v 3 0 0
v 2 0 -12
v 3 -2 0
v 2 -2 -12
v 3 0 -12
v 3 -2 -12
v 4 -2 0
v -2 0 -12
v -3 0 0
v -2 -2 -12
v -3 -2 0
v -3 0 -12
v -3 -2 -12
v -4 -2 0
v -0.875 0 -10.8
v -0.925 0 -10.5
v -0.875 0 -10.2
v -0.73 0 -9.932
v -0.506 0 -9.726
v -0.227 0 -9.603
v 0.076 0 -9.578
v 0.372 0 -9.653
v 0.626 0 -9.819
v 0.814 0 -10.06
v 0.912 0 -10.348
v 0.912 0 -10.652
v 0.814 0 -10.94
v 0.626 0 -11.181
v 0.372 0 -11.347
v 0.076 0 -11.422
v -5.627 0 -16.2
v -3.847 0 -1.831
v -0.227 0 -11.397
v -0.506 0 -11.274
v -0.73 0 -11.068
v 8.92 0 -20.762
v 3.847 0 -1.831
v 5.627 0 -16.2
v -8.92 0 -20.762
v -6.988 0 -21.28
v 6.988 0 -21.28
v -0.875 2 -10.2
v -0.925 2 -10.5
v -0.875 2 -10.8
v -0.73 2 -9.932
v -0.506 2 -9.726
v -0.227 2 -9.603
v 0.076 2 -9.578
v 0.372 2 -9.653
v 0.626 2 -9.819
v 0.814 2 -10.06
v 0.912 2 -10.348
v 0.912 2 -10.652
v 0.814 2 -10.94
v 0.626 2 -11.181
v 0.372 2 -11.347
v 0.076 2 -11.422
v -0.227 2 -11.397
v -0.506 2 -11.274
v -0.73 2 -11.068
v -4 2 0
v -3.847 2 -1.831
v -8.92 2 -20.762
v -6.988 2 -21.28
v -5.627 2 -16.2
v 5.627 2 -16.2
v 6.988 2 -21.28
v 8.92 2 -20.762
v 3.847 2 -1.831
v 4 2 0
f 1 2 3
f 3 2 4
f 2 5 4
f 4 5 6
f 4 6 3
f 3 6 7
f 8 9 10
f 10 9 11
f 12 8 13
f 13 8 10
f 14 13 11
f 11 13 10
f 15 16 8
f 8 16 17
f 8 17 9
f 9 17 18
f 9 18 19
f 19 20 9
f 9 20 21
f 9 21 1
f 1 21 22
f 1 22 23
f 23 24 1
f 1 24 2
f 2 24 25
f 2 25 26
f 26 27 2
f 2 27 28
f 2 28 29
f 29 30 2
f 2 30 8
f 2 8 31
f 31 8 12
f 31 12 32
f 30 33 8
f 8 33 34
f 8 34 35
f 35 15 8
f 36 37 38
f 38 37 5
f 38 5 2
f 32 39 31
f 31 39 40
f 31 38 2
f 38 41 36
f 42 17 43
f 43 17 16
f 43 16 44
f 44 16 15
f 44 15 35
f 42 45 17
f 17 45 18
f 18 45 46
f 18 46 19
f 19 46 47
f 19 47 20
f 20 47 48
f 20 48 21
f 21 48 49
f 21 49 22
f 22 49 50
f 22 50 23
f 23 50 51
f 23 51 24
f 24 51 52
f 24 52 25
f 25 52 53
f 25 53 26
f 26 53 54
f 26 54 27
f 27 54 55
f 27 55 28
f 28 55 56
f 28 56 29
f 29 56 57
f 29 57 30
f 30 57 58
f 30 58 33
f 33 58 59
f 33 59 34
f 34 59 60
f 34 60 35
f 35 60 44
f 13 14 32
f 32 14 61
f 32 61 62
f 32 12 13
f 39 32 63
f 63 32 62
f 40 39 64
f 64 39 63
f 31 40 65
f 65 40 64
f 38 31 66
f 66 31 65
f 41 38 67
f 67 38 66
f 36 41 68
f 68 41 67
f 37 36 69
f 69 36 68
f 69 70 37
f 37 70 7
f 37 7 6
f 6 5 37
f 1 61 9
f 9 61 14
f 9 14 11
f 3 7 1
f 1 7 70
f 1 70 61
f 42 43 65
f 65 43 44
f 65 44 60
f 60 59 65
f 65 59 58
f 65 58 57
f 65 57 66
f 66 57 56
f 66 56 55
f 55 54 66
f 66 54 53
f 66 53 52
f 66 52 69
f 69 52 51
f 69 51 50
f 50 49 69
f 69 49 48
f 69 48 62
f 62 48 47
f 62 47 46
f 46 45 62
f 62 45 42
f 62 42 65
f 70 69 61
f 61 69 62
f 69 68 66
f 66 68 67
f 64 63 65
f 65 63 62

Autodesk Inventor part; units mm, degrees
ref_plane "YZ Plane" through (0, 0, 0) normal (1, 0, 0) x (0, 1, 0)
ref_plane "XZ Plane" through (0, 0, 0) normal (0, 1, 0) x (-1, 0, 0)
ref_plane "XY Plane" through (0, 0, 0) normal (0, 0, 1) x (1, 0, 0)
sketch "Sketch1" plane through (0, 0, 0) normal (0, 1, 0) x (-1, 0, 0)
  circle A0 centre (0, 0) radius 0.5
  line L0 (0, 0) -> (0, -2)
  circle A1 centre (0, -2) radius 0.75
  line L1 (0, -2) -> (0, -4)
  line L2 (0, -4) -> (0, -6)
  circle A2 centre (0, -4) radius 0.5
  circle A3 centre (0, -6) radius 0.5
  line L3 (0, 1.25) -> (0, 0)
  line L4 (0, 0.5) -> (0, 4.8)
  line L5 (0, 4.8) -> (0, -22.2)
  line L6 (0, -6.5) -> (0, -8)
  line L7 (0, -6) -> (0, -8)
  circle A4 centre (0, -8) radius 0.5
  line L8 (0, -8.5) -> (0, -12.5)
  line L9 (0, -12.5) -> (0, -12)
  circle A5 centre (0, -10.5) radius 0.925
  circle A6 centre (0, -12) radius 0.5
  line L10 (0, 1.25) -> (3, 1.25)
  line L11 (3, 1.25) -> (-3, 1.25)
  line L12 (-3, 1.25) -> (-3, -13.75)
  line L13 (-3, -13.75) -> (3, -13.75)
  line L14 (3, -13.75) -> (3, 1.25)
  line L15 (3, 0) -> (-3, 0)
  line L16 (0, -12) -> (2, -12)
  line L17 (2, -12) -> (-2, -12)
  line L18 (-2, -12) -> (-3, 0)
  line L19 (2, -12) -> (3, 0)
  line L20 (3, 0) -> (4, 0)
  line L21 (2, -12) -> (3, -12)
  line L22 (3, -12) -> (4, 0)
  line L23 (-3, 0) -> (-4, 0)
  line L24 (-2, -12) -> (-3, -12)
  line L25 (-4, 0) -> (-3, -12)
  line L26 (0, 4.8) -> (6.9881, -21.28)
  line L27 (0, 4.8) -> (-6.9881, -21.28)
  line L28 (-6.9881, -21.28) -> (-8.9881, -21.28)
  line L29 (-6.9881, -21.28) -> (-8.92, -20.7624)
  line L30 (-8.92, -20.7624) -> (-8.92, -1.1218)
  line L31 (-8.92, -20.7624) -> (-3.8366, -1.791)
  line L32 (6.9881, -21.28) -> (8.9881, -21.28)
  line L33 (6.9881, -21.28) -> (8.92, -20.7624)
  line L34 (8.92, -20.7624) -> (8.92, -0.4933)
  line L35 (8.92, -20.7624) -> (3.674, -1.184)
  line L36 (0, -22.2) -> (0, -16.2)
  line L37 (0, -16.2) -> (5.6269, -16.2)
  line L38 (0, -16.2) -> (-5.6269, -16.2)
  point P0 (0, -11.5)
  point P1 (3.8474, -1.8313)
  point P2 (-3.8474, -1.8313)
  dimension "d0" = 1
  dimension "d6" = 1
  dimension "d42" = 1
  dimension "d1" = 2
  dimension "d2" = 1.5
  dimension "d3" = 2
  dimension "d4" = 2
  dimension "d5" = 1
  dimension "d10" = 1.25
  dimension "d13" = 4.3
  dimension "d16" = 27
  dimension "d41" = 2
  dimension "d43" = 4
  dimension "d44" = 0.5
  dimension "d45" = 1
  dimension "d46" = 1.85
  dimension "d47" = 3
  dimension "d48" = 6
  dimension "d49" = 15
  dimension "d61" = 2
  dimension "d62" = 4
  dimension "d63" = 1
  dimension "d64" = 1
  dimension "d65" = 1
  dimension "d66" = 1
  dimension "d69" = 2
  dimension "d70" = 27
  dimension "d71" = 27
  dimension "d72" = 2
  dimension "d73" = 2
  dimension "d75" = 2
  dimension "d76" = 2
  dimension "d77" = 6
extrude "Extrusion1" add sketch "Sketch1" along normal blind 2 contours L15 L26 L19 L16 A6 L5 A5 A4 A3 L2 A2 L1 A1 L0 A0 | A0 L0 L15 | L0 A1 L1 A2 L2 A3 L5 A4 A5 A6 L17 L18 L27 L15 A0 | A0 L15 L0 | L15 L19 L26 | A1 L1 L0 | L0 L1 A1 | L20 L22 L26 L14 | L14 L26 L19 | L26 L14 L21 L19 | L27 L18 L15 | L26 L22 L14 | L21 L14 L13 L5 A6 L16 | L18 L27 L12 | L12 L27 L25 L23 | L18 L24 L12 L27 | A2 L2 L1 | L1 L2 A2 | L22 L26 L37 L5 L13 L14 | L22 L35 L33 L26 | L16 L5 A6 | A6 L5 L16 | L12 L25 L27 | L17 A6 L5 L13 L12 L24 | A6 L17 L5 | L5 L17 A6 | L12 L13 L5 L38 L27 L25 | L27 L29 L31 L25 | A3 L5 L2 | L2 L5 A3 | A4 L5 | L5 A4
extrude "Extrusion2" add sketch "Sketch1" against normal blind 2 contours L20 L22 L26 L14 | L14 L26 L19 | L26 L14 L21 L19 | L26 L22 L14 | L18 L27 L12 | L12 L27 L25 L23 | L18 L24 L12 L27 | L12 L25 L27
properties part number "Servo Arm"
